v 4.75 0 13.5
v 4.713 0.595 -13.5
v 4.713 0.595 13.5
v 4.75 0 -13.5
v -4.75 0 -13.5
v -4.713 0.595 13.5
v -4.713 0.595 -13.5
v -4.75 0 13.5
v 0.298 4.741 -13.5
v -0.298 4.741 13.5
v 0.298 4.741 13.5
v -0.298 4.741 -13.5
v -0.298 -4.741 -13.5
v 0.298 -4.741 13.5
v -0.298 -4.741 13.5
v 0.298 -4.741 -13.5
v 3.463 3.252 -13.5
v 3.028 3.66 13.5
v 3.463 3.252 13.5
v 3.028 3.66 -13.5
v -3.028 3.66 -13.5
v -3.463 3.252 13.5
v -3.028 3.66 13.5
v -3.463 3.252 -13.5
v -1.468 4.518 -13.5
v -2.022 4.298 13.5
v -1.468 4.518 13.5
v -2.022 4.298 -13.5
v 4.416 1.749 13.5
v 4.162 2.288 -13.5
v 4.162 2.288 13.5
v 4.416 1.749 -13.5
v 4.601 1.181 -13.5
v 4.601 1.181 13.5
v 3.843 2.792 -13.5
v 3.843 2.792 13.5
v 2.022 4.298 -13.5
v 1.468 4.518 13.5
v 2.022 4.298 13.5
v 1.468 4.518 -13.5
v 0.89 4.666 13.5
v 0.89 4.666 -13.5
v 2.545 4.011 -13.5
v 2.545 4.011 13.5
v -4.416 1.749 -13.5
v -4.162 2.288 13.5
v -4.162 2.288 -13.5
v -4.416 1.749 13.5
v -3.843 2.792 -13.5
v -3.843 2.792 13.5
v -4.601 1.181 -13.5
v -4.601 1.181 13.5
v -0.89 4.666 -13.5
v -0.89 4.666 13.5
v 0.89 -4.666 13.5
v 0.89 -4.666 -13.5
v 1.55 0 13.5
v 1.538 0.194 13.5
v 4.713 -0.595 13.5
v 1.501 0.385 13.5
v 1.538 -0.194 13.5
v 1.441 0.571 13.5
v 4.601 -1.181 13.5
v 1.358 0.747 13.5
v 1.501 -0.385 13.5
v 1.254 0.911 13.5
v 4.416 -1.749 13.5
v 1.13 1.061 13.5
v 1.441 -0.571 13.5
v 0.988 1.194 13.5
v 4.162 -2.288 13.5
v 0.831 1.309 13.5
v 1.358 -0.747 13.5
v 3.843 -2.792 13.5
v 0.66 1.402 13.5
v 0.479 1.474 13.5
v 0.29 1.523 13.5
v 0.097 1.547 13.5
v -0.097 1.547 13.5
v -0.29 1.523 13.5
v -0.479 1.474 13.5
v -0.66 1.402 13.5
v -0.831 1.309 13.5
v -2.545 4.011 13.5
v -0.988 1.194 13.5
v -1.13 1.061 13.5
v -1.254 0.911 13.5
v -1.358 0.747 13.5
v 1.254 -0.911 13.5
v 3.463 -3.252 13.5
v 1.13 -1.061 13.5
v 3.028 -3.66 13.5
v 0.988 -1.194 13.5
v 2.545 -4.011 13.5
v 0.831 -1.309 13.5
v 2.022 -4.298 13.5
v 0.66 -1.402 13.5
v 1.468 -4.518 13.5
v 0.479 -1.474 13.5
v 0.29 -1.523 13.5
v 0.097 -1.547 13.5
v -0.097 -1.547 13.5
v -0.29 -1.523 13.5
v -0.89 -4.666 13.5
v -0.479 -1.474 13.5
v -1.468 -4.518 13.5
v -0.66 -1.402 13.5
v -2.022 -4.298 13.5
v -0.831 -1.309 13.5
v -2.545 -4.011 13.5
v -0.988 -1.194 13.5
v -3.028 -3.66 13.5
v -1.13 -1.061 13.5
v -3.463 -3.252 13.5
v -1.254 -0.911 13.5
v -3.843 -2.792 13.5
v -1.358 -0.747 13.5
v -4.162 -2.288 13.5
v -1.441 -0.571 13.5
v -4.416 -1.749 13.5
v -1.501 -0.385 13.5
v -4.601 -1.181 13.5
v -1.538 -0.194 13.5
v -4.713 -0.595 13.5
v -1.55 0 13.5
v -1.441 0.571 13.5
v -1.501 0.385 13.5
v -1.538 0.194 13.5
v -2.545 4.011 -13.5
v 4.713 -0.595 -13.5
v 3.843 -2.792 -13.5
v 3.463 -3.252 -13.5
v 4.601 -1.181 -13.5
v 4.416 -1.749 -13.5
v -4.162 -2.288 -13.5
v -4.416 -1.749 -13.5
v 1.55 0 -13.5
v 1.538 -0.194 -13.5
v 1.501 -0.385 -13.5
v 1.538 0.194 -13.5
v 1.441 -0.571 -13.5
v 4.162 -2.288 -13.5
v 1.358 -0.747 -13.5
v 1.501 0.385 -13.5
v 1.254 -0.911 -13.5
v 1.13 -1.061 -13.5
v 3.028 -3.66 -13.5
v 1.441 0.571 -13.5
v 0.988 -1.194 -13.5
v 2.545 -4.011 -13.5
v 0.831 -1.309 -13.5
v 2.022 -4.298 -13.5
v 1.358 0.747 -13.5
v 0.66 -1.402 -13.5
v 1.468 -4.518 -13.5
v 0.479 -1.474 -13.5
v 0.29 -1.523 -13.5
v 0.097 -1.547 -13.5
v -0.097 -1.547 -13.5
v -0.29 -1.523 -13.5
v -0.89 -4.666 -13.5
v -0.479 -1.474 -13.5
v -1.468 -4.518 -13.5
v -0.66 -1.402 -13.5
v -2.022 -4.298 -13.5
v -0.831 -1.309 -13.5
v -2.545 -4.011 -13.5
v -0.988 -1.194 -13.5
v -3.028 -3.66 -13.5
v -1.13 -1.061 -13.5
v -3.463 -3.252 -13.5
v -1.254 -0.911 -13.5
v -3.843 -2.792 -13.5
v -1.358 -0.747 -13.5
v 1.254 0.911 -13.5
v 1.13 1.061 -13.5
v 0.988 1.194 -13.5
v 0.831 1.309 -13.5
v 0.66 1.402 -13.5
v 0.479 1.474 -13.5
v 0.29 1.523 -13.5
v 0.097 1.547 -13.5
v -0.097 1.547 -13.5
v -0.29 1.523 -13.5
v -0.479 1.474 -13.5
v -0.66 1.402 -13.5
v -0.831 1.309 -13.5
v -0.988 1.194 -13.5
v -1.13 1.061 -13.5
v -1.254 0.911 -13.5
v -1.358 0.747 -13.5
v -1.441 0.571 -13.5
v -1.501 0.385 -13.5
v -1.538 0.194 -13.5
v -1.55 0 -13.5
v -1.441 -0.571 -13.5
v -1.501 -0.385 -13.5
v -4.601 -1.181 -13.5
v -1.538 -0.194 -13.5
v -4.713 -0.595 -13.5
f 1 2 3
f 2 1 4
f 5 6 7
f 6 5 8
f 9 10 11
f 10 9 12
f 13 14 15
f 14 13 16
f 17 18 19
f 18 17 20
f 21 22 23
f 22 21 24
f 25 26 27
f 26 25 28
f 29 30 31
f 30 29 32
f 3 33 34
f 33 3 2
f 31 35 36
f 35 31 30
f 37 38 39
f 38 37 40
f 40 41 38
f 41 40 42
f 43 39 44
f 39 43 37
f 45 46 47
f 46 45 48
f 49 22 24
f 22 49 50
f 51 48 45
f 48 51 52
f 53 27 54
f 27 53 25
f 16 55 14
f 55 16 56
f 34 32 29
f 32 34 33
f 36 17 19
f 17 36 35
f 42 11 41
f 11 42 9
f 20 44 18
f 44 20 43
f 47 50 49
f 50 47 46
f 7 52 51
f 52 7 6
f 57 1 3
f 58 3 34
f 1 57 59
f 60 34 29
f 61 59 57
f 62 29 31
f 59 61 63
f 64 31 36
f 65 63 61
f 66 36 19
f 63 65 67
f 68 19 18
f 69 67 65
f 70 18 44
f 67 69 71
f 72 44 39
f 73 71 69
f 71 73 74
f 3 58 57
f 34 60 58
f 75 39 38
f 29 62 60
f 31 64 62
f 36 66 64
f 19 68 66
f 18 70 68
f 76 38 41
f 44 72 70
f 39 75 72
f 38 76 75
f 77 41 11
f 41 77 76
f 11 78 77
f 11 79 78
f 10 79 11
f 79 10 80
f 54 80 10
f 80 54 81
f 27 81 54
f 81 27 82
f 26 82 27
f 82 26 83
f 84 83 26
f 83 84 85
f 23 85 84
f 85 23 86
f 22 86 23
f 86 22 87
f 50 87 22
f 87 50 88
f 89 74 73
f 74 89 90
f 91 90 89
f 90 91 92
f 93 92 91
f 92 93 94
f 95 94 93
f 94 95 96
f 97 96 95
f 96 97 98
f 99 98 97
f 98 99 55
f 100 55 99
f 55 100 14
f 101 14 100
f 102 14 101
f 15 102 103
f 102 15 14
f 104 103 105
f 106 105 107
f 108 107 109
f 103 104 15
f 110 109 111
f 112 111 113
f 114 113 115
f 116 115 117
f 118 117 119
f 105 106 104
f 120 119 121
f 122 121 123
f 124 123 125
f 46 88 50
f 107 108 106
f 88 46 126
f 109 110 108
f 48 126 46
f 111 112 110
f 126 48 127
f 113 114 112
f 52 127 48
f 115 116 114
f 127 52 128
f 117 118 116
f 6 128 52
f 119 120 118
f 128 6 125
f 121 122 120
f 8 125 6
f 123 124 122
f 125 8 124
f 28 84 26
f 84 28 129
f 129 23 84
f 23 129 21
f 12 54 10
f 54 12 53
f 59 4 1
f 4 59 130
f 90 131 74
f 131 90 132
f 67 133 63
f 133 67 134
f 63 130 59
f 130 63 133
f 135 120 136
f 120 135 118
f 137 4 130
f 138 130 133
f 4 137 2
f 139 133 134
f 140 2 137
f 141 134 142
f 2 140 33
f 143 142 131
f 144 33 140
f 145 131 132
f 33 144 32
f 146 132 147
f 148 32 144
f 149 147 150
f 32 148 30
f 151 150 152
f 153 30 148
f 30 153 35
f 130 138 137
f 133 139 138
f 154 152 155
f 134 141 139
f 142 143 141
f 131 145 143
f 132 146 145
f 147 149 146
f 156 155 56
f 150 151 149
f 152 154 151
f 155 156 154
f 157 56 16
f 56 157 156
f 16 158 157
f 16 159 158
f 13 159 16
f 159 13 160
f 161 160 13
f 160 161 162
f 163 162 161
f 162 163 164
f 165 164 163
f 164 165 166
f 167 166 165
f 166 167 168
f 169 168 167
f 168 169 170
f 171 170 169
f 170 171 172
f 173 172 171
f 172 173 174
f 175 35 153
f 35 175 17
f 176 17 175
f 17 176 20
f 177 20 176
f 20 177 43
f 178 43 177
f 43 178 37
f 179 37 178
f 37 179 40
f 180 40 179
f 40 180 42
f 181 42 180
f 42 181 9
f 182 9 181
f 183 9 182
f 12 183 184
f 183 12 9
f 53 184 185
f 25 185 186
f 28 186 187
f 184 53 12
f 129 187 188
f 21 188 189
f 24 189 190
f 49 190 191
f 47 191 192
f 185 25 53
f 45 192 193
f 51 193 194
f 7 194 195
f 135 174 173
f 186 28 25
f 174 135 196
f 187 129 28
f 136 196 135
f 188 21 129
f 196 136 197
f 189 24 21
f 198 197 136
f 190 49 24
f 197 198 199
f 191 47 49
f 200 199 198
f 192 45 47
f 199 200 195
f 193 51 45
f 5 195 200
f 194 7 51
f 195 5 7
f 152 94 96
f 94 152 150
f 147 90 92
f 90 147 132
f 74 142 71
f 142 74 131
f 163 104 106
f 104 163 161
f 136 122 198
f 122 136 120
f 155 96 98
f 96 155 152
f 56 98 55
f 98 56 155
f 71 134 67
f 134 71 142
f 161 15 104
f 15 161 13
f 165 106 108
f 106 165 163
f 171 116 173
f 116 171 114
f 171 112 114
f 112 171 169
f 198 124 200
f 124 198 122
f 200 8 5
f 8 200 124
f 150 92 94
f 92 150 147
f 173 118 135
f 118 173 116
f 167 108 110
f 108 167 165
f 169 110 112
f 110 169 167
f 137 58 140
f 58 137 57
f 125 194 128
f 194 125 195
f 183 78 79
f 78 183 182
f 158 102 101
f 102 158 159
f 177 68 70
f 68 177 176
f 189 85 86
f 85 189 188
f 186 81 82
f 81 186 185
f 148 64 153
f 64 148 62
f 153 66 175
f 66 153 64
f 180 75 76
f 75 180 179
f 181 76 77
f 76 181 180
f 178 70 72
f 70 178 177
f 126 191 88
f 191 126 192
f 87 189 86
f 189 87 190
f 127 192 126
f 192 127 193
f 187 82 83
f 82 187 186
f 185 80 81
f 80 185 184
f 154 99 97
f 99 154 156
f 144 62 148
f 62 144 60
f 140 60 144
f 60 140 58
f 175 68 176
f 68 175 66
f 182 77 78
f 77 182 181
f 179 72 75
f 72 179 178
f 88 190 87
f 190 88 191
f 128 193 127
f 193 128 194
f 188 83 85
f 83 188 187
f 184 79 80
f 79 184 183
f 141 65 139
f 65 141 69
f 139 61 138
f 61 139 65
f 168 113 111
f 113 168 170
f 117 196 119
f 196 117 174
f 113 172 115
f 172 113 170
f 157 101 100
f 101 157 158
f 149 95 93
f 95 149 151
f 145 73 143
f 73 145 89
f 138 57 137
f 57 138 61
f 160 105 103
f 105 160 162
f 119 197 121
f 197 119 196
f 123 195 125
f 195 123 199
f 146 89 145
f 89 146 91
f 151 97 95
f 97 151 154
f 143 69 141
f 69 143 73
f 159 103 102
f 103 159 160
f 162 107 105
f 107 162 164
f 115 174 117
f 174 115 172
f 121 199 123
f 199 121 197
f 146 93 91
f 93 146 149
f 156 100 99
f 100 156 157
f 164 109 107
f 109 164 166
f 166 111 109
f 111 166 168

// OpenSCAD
$fn = 50;


difference() {
	union() {
		translate(v = [0, 0, -13.5000000000]) {
			cylinder(h = 27, r = 4.7500000000);
		}
	}
	union() {
		translate(v = [0, 0, -100.0000000000]) {
			cylinder(h = 200, r = 1.5500000000);
		}
	}
}
